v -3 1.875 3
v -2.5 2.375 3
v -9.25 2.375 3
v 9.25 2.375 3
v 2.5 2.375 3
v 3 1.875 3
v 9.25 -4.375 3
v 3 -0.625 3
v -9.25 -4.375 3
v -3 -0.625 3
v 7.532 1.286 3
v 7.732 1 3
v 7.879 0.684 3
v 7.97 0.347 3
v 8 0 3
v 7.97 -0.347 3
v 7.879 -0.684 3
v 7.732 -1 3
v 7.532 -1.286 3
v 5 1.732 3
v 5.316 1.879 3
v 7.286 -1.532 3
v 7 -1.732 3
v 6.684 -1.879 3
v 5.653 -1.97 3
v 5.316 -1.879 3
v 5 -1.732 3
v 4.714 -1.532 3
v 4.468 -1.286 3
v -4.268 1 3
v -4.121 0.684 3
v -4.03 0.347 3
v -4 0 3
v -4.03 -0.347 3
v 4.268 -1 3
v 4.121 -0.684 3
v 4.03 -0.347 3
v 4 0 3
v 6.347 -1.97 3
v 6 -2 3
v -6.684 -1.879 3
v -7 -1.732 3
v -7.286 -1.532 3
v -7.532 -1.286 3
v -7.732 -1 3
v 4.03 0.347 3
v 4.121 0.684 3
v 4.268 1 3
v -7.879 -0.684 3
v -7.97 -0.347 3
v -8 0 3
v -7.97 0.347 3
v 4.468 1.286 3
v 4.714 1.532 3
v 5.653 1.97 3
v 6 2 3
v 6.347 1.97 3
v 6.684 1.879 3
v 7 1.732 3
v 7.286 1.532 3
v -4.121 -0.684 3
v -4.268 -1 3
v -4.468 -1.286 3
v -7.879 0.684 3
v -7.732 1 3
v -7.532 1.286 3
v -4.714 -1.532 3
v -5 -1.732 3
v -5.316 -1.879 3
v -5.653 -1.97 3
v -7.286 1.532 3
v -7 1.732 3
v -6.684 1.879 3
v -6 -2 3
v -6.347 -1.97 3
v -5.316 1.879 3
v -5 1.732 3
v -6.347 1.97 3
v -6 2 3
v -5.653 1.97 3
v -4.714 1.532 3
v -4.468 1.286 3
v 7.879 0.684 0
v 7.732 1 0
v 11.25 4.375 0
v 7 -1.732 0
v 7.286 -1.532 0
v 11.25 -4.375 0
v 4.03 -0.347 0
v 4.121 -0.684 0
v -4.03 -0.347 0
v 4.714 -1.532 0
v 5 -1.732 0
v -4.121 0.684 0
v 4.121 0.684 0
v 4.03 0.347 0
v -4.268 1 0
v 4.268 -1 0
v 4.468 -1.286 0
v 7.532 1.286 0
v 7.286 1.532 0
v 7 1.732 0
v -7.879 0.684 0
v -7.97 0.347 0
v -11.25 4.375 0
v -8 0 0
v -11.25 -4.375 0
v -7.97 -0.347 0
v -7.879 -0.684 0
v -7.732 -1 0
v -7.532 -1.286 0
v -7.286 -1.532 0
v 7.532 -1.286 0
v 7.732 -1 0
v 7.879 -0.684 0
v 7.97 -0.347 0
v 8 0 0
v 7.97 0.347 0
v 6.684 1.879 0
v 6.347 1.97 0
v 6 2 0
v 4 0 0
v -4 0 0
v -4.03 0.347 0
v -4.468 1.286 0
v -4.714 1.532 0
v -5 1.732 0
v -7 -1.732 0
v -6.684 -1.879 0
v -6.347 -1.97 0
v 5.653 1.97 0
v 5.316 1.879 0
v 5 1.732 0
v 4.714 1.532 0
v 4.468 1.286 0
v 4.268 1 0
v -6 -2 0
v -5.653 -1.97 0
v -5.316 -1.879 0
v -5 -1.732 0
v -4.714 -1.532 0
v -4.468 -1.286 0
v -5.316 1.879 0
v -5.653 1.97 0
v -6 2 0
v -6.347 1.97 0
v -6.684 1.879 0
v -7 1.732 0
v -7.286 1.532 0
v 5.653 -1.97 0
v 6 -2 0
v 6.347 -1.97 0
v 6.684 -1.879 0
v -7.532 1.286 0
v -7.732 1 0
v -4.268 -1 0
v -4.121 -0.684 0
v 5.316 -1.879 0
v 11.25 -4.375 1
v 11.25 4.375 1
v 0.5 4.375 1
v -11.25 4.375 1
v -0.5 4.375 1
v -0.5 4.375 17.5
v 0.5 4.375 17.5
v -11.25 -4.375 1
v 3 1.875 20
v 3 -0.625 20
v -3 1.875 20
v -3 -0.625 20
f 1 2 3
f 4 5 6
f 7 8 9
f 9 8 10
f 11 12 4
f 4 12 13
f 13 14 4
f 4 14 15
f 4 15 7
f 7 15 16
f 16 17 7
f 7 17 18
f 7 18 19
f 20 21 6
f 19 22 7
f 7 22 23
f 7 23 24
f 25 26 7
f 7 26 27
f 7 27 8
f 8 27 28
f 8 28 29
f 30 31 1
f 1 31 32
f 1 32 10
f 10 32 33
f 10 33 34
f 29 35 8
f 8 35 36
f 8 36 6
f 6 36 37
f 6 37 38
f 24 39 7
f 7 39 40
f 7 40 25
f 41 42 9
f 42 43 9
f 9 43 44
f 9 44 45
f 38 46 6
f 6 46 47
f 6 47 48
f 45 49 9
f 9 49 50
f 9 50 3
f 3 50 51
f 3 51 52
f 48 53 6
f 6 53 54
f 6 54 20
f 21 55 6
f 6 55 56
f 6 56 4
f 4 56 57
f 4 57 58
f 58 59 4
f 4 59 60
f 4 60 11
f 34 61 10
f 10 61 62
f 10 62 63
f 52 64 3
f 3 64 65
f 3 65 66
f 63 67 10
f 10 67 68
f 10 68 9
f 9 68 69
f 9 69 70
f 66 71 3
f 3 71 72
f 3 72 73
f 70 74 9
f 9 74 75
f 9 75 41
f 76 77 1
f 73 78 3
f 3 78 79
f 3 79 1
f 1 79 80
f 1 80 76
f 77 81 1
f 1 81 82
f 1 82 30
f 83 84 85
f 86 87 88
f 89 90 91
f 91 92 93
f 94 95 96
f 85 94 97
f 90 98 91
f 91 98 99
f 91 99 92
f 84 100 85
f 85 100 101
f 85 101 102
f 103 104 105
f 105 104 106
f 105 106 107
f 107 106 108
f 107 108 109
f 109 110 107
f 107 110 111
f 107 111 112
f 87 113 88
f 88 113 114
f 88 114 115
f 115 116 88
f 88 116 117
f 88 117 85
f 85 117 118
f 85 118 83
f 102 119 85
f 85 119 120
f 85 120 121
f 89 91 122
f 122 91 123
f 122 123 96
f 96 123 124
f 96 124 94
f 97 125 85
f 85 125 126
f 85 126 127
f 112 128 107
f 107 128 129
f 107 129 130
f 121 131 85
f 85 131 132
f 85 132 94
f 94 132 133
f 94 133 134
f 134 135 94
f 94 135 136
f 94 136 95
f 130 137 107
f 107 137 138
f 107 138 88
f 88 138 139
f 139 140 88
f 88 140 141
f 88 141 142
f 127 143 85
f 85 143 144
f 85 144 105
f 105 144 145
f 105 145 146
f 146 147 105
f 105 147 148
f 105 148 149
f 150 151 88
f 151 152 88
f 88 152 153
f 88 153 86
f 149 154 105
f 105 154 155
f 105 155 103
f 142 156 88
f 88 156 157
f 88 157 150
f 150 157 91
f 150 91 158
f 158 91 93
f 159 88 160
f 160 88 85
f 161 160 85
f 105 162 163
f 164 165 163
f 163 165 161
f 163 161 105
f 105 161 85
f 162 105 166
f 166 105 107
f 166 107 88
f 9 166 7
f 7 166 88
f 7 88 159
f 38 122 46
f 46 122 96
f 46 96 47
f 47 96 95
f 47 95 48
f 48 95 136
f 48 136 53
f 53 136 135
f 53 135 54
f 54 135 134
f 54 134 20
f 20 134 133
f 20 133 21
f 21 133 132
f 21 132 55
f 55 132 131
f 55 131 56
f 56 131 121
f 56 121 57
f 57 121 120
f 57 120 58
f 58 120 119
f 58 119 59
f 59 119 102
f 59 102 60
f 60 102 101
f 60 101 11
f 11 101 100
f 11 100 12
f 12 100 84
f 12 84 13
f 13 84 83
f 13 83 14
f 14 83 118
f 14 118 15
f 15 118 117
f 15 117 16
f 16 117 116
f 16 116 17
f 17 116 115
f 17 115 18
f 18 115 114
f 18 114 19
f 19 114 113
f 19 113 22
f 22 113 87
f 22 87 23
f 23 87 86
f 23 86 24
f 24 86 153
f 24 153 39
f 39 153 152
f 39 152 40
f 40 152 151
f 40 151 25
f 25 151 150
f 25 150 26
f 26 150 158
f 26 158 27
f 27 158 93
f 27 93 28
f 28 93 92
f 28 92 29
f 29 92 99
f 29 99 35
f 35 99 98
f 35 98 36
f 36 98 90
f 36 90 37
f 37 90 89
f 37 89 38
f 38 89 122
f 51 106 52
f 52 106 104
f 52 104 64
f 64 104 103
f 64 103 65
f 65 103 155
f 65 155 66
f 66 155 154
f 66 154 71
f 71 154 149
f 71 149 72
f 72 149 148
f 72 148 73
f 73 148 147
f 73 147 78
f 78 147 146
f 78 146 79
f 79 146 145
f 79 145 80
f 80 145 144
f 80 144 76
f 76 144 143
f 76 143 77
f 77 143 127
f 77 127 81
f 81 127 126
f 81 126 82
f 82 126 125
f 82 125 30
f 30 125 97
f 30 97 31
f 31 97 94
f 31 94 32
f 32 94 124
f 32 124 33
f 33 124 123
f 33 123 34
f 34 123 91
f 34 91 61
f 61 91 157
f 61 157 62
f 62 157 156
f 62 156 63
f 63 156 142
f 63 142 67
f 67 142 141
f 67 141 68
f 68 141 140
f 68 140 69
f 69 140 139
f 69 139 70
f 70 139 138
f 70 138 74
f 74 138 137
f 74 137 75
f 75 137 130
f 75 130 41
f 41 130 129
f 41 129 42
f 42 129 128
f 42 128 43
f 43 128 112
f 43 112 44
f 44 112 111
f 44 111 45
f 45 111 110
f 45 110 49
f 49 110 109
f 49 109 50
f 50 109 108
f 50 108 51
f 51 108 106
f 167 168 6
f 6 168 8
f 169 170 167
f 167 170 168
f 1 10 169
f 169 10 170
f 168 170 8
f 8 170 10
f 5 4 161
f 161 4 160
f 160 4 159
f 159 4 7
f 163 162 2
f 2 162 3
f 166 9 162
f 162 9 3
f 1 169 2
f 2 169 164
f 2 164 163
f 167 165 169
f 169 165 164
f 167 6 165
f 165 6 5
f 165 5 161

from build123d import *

# Parameters (mm, degrees)
SKETCH1_W           = 22.5
SKETCH1_H           = 8.75
SKETCH1_R           = 2
BOSS_EXTRUDE1_DEPTH = 3
SKETCH2_W           = 3
SKETCH2_H           = 17
BOSS_EXTRUDE2_DEPTH = 5
CHAMFER1_SIZE       = 2
CHAMFER2_SIZE       = 2.5


with BuildPart() as part:
    # Sketch1 → Boss-Extrude1 (new body)
    with BuildSketch(Plane.XY):
        Rectangle(SKETCH1_W, SKETCH1_H)
        with Locations((6, 0)):
            Circle(SKETCH1_R, mode=Mode.SUBTRACT)
        with Locations(Location((-6, 0, 0), (0, 0, 180))):
            Circle(SKETCH1_R, mode=Mode.SUBTRACT)
    extrude(amount=BOSS_EXTRUDE1_DEPTH)

    # Sketch2 → Boss-Extrude2 (add)
    with BuildSketch(Plane(origin=(0, 4.375, 0), x_dir=(1, 0, 0), z_dir=(0, 1, 0))):
        with Locations((-1.5, -11.5)):
            Rectangle(SKETCH2_W, SKETCH2_H)
        with Locations((1.5, -11.5)):
            Rectangle(SKETCH2_W, SKETCH2_H)
    extrude(amount=-BOSS_EXTRUDE2_DEPTH)

    # Chamfer1
    chamfer1_edges = [part.edges().sort_by_distance(p)[0] for p in [
        (-11.25, 0, 3),
        (-7.125, 4.375, 3),
        (11.25, 0, 3),
        (7.125, 4.375, 3),
    ]]
    chamfer(chamfer1_edges, length=CHAMFER1_SIZE)

    # Chamfer2
    # the kernel refuses this chamfer: 2.5 mm, written as the material it takes off along each edge
    with BuildSketch(Plane(origin=(3, 4.375, 26.42920747), x_dir=(0.027495876610586317, -0.9996219169112968, 0), z_dir=(0, 0, -1))) as chamfer2_piece_1_section:
        Polygon((CHAMFER2_SIZE * 0.999621916911, CHAMFER2_SIZE * 0.0274958766106), (-CHAMFER2_SIZE * 0.0274958766106, CHAMFER2_SIZE * 0.999621916911), (0, 0), align=None)
    chamfer2_piece_1 = extrude(amount=31.85841494, mode=Mode.PRIVATE)
    chamfer2_piece_1 = split(chamfer2_piece_1, bisect_by=Plane(origin=(2.16638878, 3.54222244, 3), z_dir=(0, 0, 1)), keep=Keep.TOP, mode=Mode.PRIVATE)
    add(chamfer2_piece_1, mode=Mode.SUBTRACT)
    with BuildSketch(Plane(origin=(3, 4.375, 26.42920747), x_dir=(0.027495876610586317, -0.9996219169112968, 0), z_dir=(0, 0, -1))) as chamfer2_piece_2_section:
        Polygon((CHAMFER2_SIZE * 0.999621916911, CHAMFER2_SIZE * 0.0274958766106), (-CHAMFER2_SIZE * 0.0274958766106, CHAMFER2_SIZE * 0.999621916911), (0, 0), align=None)
    chamfer2_piece_2 = extrude(amount=31.85841494, mode=Mode.PRIVATE)
    chamfer2_piece_2 = split(chamfer2_piece_2, bisect_by=Plane(origin=(2.022727273, 3.465909091, 1.909090909), z_dir=(0, 0.7071067811865476, 0.7071067811865476)), keep=Keep.TOP, mode=Mode.PRIVATE)
    add(chamfer2_piece_2, mode=Mode.SUBTRACT)
    with BuildSketch(Plane(origin=(9.42920747, 4.375, 20), x_dir=(0, -0.9996219169112968, 0.027495876610586317), z_dir=(-1, 0, 0))) as chamfer2_piece_3:
        Polygon((CHAMFER2_SIZE * 0.999621916911, -CHAMFER2_SIZE * 0.0274958766106), (-CHAMFER2_SIZE * 0.0274958766106, -CHAMFER2_SIZE * 0.999621916911), (0, 0), align=None)
    extrude(amount=18.85841494, mode=Mode.SUBTRACT)
    with BuildSketch(Plane(origin=(-3, 4.375, -5.42920747), x_dir=(-0.027495876610586147, -0.9996219169112968, 0), z_dir=(0, 0, 1))) as chamfer2_piece_4_section:
        Polygon((CHAMFER2_SIZE * 0.999621916911, CHAMFER2_SIZE * 0.0274958766106), (-CHAMFER2_SIZE * 0.0274958766106, CHAMFER2_SIZE * 0.999621916911), (0, 0), align=None)
    chamfer2_piece_4 = extrude(amount=31.85841494, mode=Mode.PRIVATE)
    chamfer2_piece_4 = split(chamfer2_piece_4, bisect_by=Plane(origin=(-2.022727273, 3.465909091, 1.909090909), z_dir=(0, 0.7071067811865476, 0.7071067811865476)), keep=Keep.TOP, mode=Mode.PRIVATE)
    add(chamfer2_piece_4, mode=Mode.SUBTRACT)
    with BuildSketch(Plane(origin=(-3, 4.375, -5.42920747), x_dir=(-0.027495876610586147, -0.9996219169112968, 0), z_dir=(0, 0, 1))) as chamfer2_piece_5_section:
        Polygon((CHAMFER2_SIZE * 0.999621916911, CHAMFER2_SIZE * 0.0274958766106), (-CHAMFER2_SIZE * 0.0274958766106, CHAMFER2_SIZE * 0.999621916911), (0, 0), align=None)
    chamfer2_piece_5 = extrude(amount=31.85841494, mode=Mode.PRIVATE)
    chamfer2_piece_5 = split(chamfer2_piece_5, bisect_by=Plane(origin=(-2.875, 2.125, 3), z_dir=(0, 0, 1)), keep=Keep.TOP, mode=Mode.PRIVATE)
    add(chamfer2_piece_5, mode=Mode.SUBTRACT)


solid = part.part
